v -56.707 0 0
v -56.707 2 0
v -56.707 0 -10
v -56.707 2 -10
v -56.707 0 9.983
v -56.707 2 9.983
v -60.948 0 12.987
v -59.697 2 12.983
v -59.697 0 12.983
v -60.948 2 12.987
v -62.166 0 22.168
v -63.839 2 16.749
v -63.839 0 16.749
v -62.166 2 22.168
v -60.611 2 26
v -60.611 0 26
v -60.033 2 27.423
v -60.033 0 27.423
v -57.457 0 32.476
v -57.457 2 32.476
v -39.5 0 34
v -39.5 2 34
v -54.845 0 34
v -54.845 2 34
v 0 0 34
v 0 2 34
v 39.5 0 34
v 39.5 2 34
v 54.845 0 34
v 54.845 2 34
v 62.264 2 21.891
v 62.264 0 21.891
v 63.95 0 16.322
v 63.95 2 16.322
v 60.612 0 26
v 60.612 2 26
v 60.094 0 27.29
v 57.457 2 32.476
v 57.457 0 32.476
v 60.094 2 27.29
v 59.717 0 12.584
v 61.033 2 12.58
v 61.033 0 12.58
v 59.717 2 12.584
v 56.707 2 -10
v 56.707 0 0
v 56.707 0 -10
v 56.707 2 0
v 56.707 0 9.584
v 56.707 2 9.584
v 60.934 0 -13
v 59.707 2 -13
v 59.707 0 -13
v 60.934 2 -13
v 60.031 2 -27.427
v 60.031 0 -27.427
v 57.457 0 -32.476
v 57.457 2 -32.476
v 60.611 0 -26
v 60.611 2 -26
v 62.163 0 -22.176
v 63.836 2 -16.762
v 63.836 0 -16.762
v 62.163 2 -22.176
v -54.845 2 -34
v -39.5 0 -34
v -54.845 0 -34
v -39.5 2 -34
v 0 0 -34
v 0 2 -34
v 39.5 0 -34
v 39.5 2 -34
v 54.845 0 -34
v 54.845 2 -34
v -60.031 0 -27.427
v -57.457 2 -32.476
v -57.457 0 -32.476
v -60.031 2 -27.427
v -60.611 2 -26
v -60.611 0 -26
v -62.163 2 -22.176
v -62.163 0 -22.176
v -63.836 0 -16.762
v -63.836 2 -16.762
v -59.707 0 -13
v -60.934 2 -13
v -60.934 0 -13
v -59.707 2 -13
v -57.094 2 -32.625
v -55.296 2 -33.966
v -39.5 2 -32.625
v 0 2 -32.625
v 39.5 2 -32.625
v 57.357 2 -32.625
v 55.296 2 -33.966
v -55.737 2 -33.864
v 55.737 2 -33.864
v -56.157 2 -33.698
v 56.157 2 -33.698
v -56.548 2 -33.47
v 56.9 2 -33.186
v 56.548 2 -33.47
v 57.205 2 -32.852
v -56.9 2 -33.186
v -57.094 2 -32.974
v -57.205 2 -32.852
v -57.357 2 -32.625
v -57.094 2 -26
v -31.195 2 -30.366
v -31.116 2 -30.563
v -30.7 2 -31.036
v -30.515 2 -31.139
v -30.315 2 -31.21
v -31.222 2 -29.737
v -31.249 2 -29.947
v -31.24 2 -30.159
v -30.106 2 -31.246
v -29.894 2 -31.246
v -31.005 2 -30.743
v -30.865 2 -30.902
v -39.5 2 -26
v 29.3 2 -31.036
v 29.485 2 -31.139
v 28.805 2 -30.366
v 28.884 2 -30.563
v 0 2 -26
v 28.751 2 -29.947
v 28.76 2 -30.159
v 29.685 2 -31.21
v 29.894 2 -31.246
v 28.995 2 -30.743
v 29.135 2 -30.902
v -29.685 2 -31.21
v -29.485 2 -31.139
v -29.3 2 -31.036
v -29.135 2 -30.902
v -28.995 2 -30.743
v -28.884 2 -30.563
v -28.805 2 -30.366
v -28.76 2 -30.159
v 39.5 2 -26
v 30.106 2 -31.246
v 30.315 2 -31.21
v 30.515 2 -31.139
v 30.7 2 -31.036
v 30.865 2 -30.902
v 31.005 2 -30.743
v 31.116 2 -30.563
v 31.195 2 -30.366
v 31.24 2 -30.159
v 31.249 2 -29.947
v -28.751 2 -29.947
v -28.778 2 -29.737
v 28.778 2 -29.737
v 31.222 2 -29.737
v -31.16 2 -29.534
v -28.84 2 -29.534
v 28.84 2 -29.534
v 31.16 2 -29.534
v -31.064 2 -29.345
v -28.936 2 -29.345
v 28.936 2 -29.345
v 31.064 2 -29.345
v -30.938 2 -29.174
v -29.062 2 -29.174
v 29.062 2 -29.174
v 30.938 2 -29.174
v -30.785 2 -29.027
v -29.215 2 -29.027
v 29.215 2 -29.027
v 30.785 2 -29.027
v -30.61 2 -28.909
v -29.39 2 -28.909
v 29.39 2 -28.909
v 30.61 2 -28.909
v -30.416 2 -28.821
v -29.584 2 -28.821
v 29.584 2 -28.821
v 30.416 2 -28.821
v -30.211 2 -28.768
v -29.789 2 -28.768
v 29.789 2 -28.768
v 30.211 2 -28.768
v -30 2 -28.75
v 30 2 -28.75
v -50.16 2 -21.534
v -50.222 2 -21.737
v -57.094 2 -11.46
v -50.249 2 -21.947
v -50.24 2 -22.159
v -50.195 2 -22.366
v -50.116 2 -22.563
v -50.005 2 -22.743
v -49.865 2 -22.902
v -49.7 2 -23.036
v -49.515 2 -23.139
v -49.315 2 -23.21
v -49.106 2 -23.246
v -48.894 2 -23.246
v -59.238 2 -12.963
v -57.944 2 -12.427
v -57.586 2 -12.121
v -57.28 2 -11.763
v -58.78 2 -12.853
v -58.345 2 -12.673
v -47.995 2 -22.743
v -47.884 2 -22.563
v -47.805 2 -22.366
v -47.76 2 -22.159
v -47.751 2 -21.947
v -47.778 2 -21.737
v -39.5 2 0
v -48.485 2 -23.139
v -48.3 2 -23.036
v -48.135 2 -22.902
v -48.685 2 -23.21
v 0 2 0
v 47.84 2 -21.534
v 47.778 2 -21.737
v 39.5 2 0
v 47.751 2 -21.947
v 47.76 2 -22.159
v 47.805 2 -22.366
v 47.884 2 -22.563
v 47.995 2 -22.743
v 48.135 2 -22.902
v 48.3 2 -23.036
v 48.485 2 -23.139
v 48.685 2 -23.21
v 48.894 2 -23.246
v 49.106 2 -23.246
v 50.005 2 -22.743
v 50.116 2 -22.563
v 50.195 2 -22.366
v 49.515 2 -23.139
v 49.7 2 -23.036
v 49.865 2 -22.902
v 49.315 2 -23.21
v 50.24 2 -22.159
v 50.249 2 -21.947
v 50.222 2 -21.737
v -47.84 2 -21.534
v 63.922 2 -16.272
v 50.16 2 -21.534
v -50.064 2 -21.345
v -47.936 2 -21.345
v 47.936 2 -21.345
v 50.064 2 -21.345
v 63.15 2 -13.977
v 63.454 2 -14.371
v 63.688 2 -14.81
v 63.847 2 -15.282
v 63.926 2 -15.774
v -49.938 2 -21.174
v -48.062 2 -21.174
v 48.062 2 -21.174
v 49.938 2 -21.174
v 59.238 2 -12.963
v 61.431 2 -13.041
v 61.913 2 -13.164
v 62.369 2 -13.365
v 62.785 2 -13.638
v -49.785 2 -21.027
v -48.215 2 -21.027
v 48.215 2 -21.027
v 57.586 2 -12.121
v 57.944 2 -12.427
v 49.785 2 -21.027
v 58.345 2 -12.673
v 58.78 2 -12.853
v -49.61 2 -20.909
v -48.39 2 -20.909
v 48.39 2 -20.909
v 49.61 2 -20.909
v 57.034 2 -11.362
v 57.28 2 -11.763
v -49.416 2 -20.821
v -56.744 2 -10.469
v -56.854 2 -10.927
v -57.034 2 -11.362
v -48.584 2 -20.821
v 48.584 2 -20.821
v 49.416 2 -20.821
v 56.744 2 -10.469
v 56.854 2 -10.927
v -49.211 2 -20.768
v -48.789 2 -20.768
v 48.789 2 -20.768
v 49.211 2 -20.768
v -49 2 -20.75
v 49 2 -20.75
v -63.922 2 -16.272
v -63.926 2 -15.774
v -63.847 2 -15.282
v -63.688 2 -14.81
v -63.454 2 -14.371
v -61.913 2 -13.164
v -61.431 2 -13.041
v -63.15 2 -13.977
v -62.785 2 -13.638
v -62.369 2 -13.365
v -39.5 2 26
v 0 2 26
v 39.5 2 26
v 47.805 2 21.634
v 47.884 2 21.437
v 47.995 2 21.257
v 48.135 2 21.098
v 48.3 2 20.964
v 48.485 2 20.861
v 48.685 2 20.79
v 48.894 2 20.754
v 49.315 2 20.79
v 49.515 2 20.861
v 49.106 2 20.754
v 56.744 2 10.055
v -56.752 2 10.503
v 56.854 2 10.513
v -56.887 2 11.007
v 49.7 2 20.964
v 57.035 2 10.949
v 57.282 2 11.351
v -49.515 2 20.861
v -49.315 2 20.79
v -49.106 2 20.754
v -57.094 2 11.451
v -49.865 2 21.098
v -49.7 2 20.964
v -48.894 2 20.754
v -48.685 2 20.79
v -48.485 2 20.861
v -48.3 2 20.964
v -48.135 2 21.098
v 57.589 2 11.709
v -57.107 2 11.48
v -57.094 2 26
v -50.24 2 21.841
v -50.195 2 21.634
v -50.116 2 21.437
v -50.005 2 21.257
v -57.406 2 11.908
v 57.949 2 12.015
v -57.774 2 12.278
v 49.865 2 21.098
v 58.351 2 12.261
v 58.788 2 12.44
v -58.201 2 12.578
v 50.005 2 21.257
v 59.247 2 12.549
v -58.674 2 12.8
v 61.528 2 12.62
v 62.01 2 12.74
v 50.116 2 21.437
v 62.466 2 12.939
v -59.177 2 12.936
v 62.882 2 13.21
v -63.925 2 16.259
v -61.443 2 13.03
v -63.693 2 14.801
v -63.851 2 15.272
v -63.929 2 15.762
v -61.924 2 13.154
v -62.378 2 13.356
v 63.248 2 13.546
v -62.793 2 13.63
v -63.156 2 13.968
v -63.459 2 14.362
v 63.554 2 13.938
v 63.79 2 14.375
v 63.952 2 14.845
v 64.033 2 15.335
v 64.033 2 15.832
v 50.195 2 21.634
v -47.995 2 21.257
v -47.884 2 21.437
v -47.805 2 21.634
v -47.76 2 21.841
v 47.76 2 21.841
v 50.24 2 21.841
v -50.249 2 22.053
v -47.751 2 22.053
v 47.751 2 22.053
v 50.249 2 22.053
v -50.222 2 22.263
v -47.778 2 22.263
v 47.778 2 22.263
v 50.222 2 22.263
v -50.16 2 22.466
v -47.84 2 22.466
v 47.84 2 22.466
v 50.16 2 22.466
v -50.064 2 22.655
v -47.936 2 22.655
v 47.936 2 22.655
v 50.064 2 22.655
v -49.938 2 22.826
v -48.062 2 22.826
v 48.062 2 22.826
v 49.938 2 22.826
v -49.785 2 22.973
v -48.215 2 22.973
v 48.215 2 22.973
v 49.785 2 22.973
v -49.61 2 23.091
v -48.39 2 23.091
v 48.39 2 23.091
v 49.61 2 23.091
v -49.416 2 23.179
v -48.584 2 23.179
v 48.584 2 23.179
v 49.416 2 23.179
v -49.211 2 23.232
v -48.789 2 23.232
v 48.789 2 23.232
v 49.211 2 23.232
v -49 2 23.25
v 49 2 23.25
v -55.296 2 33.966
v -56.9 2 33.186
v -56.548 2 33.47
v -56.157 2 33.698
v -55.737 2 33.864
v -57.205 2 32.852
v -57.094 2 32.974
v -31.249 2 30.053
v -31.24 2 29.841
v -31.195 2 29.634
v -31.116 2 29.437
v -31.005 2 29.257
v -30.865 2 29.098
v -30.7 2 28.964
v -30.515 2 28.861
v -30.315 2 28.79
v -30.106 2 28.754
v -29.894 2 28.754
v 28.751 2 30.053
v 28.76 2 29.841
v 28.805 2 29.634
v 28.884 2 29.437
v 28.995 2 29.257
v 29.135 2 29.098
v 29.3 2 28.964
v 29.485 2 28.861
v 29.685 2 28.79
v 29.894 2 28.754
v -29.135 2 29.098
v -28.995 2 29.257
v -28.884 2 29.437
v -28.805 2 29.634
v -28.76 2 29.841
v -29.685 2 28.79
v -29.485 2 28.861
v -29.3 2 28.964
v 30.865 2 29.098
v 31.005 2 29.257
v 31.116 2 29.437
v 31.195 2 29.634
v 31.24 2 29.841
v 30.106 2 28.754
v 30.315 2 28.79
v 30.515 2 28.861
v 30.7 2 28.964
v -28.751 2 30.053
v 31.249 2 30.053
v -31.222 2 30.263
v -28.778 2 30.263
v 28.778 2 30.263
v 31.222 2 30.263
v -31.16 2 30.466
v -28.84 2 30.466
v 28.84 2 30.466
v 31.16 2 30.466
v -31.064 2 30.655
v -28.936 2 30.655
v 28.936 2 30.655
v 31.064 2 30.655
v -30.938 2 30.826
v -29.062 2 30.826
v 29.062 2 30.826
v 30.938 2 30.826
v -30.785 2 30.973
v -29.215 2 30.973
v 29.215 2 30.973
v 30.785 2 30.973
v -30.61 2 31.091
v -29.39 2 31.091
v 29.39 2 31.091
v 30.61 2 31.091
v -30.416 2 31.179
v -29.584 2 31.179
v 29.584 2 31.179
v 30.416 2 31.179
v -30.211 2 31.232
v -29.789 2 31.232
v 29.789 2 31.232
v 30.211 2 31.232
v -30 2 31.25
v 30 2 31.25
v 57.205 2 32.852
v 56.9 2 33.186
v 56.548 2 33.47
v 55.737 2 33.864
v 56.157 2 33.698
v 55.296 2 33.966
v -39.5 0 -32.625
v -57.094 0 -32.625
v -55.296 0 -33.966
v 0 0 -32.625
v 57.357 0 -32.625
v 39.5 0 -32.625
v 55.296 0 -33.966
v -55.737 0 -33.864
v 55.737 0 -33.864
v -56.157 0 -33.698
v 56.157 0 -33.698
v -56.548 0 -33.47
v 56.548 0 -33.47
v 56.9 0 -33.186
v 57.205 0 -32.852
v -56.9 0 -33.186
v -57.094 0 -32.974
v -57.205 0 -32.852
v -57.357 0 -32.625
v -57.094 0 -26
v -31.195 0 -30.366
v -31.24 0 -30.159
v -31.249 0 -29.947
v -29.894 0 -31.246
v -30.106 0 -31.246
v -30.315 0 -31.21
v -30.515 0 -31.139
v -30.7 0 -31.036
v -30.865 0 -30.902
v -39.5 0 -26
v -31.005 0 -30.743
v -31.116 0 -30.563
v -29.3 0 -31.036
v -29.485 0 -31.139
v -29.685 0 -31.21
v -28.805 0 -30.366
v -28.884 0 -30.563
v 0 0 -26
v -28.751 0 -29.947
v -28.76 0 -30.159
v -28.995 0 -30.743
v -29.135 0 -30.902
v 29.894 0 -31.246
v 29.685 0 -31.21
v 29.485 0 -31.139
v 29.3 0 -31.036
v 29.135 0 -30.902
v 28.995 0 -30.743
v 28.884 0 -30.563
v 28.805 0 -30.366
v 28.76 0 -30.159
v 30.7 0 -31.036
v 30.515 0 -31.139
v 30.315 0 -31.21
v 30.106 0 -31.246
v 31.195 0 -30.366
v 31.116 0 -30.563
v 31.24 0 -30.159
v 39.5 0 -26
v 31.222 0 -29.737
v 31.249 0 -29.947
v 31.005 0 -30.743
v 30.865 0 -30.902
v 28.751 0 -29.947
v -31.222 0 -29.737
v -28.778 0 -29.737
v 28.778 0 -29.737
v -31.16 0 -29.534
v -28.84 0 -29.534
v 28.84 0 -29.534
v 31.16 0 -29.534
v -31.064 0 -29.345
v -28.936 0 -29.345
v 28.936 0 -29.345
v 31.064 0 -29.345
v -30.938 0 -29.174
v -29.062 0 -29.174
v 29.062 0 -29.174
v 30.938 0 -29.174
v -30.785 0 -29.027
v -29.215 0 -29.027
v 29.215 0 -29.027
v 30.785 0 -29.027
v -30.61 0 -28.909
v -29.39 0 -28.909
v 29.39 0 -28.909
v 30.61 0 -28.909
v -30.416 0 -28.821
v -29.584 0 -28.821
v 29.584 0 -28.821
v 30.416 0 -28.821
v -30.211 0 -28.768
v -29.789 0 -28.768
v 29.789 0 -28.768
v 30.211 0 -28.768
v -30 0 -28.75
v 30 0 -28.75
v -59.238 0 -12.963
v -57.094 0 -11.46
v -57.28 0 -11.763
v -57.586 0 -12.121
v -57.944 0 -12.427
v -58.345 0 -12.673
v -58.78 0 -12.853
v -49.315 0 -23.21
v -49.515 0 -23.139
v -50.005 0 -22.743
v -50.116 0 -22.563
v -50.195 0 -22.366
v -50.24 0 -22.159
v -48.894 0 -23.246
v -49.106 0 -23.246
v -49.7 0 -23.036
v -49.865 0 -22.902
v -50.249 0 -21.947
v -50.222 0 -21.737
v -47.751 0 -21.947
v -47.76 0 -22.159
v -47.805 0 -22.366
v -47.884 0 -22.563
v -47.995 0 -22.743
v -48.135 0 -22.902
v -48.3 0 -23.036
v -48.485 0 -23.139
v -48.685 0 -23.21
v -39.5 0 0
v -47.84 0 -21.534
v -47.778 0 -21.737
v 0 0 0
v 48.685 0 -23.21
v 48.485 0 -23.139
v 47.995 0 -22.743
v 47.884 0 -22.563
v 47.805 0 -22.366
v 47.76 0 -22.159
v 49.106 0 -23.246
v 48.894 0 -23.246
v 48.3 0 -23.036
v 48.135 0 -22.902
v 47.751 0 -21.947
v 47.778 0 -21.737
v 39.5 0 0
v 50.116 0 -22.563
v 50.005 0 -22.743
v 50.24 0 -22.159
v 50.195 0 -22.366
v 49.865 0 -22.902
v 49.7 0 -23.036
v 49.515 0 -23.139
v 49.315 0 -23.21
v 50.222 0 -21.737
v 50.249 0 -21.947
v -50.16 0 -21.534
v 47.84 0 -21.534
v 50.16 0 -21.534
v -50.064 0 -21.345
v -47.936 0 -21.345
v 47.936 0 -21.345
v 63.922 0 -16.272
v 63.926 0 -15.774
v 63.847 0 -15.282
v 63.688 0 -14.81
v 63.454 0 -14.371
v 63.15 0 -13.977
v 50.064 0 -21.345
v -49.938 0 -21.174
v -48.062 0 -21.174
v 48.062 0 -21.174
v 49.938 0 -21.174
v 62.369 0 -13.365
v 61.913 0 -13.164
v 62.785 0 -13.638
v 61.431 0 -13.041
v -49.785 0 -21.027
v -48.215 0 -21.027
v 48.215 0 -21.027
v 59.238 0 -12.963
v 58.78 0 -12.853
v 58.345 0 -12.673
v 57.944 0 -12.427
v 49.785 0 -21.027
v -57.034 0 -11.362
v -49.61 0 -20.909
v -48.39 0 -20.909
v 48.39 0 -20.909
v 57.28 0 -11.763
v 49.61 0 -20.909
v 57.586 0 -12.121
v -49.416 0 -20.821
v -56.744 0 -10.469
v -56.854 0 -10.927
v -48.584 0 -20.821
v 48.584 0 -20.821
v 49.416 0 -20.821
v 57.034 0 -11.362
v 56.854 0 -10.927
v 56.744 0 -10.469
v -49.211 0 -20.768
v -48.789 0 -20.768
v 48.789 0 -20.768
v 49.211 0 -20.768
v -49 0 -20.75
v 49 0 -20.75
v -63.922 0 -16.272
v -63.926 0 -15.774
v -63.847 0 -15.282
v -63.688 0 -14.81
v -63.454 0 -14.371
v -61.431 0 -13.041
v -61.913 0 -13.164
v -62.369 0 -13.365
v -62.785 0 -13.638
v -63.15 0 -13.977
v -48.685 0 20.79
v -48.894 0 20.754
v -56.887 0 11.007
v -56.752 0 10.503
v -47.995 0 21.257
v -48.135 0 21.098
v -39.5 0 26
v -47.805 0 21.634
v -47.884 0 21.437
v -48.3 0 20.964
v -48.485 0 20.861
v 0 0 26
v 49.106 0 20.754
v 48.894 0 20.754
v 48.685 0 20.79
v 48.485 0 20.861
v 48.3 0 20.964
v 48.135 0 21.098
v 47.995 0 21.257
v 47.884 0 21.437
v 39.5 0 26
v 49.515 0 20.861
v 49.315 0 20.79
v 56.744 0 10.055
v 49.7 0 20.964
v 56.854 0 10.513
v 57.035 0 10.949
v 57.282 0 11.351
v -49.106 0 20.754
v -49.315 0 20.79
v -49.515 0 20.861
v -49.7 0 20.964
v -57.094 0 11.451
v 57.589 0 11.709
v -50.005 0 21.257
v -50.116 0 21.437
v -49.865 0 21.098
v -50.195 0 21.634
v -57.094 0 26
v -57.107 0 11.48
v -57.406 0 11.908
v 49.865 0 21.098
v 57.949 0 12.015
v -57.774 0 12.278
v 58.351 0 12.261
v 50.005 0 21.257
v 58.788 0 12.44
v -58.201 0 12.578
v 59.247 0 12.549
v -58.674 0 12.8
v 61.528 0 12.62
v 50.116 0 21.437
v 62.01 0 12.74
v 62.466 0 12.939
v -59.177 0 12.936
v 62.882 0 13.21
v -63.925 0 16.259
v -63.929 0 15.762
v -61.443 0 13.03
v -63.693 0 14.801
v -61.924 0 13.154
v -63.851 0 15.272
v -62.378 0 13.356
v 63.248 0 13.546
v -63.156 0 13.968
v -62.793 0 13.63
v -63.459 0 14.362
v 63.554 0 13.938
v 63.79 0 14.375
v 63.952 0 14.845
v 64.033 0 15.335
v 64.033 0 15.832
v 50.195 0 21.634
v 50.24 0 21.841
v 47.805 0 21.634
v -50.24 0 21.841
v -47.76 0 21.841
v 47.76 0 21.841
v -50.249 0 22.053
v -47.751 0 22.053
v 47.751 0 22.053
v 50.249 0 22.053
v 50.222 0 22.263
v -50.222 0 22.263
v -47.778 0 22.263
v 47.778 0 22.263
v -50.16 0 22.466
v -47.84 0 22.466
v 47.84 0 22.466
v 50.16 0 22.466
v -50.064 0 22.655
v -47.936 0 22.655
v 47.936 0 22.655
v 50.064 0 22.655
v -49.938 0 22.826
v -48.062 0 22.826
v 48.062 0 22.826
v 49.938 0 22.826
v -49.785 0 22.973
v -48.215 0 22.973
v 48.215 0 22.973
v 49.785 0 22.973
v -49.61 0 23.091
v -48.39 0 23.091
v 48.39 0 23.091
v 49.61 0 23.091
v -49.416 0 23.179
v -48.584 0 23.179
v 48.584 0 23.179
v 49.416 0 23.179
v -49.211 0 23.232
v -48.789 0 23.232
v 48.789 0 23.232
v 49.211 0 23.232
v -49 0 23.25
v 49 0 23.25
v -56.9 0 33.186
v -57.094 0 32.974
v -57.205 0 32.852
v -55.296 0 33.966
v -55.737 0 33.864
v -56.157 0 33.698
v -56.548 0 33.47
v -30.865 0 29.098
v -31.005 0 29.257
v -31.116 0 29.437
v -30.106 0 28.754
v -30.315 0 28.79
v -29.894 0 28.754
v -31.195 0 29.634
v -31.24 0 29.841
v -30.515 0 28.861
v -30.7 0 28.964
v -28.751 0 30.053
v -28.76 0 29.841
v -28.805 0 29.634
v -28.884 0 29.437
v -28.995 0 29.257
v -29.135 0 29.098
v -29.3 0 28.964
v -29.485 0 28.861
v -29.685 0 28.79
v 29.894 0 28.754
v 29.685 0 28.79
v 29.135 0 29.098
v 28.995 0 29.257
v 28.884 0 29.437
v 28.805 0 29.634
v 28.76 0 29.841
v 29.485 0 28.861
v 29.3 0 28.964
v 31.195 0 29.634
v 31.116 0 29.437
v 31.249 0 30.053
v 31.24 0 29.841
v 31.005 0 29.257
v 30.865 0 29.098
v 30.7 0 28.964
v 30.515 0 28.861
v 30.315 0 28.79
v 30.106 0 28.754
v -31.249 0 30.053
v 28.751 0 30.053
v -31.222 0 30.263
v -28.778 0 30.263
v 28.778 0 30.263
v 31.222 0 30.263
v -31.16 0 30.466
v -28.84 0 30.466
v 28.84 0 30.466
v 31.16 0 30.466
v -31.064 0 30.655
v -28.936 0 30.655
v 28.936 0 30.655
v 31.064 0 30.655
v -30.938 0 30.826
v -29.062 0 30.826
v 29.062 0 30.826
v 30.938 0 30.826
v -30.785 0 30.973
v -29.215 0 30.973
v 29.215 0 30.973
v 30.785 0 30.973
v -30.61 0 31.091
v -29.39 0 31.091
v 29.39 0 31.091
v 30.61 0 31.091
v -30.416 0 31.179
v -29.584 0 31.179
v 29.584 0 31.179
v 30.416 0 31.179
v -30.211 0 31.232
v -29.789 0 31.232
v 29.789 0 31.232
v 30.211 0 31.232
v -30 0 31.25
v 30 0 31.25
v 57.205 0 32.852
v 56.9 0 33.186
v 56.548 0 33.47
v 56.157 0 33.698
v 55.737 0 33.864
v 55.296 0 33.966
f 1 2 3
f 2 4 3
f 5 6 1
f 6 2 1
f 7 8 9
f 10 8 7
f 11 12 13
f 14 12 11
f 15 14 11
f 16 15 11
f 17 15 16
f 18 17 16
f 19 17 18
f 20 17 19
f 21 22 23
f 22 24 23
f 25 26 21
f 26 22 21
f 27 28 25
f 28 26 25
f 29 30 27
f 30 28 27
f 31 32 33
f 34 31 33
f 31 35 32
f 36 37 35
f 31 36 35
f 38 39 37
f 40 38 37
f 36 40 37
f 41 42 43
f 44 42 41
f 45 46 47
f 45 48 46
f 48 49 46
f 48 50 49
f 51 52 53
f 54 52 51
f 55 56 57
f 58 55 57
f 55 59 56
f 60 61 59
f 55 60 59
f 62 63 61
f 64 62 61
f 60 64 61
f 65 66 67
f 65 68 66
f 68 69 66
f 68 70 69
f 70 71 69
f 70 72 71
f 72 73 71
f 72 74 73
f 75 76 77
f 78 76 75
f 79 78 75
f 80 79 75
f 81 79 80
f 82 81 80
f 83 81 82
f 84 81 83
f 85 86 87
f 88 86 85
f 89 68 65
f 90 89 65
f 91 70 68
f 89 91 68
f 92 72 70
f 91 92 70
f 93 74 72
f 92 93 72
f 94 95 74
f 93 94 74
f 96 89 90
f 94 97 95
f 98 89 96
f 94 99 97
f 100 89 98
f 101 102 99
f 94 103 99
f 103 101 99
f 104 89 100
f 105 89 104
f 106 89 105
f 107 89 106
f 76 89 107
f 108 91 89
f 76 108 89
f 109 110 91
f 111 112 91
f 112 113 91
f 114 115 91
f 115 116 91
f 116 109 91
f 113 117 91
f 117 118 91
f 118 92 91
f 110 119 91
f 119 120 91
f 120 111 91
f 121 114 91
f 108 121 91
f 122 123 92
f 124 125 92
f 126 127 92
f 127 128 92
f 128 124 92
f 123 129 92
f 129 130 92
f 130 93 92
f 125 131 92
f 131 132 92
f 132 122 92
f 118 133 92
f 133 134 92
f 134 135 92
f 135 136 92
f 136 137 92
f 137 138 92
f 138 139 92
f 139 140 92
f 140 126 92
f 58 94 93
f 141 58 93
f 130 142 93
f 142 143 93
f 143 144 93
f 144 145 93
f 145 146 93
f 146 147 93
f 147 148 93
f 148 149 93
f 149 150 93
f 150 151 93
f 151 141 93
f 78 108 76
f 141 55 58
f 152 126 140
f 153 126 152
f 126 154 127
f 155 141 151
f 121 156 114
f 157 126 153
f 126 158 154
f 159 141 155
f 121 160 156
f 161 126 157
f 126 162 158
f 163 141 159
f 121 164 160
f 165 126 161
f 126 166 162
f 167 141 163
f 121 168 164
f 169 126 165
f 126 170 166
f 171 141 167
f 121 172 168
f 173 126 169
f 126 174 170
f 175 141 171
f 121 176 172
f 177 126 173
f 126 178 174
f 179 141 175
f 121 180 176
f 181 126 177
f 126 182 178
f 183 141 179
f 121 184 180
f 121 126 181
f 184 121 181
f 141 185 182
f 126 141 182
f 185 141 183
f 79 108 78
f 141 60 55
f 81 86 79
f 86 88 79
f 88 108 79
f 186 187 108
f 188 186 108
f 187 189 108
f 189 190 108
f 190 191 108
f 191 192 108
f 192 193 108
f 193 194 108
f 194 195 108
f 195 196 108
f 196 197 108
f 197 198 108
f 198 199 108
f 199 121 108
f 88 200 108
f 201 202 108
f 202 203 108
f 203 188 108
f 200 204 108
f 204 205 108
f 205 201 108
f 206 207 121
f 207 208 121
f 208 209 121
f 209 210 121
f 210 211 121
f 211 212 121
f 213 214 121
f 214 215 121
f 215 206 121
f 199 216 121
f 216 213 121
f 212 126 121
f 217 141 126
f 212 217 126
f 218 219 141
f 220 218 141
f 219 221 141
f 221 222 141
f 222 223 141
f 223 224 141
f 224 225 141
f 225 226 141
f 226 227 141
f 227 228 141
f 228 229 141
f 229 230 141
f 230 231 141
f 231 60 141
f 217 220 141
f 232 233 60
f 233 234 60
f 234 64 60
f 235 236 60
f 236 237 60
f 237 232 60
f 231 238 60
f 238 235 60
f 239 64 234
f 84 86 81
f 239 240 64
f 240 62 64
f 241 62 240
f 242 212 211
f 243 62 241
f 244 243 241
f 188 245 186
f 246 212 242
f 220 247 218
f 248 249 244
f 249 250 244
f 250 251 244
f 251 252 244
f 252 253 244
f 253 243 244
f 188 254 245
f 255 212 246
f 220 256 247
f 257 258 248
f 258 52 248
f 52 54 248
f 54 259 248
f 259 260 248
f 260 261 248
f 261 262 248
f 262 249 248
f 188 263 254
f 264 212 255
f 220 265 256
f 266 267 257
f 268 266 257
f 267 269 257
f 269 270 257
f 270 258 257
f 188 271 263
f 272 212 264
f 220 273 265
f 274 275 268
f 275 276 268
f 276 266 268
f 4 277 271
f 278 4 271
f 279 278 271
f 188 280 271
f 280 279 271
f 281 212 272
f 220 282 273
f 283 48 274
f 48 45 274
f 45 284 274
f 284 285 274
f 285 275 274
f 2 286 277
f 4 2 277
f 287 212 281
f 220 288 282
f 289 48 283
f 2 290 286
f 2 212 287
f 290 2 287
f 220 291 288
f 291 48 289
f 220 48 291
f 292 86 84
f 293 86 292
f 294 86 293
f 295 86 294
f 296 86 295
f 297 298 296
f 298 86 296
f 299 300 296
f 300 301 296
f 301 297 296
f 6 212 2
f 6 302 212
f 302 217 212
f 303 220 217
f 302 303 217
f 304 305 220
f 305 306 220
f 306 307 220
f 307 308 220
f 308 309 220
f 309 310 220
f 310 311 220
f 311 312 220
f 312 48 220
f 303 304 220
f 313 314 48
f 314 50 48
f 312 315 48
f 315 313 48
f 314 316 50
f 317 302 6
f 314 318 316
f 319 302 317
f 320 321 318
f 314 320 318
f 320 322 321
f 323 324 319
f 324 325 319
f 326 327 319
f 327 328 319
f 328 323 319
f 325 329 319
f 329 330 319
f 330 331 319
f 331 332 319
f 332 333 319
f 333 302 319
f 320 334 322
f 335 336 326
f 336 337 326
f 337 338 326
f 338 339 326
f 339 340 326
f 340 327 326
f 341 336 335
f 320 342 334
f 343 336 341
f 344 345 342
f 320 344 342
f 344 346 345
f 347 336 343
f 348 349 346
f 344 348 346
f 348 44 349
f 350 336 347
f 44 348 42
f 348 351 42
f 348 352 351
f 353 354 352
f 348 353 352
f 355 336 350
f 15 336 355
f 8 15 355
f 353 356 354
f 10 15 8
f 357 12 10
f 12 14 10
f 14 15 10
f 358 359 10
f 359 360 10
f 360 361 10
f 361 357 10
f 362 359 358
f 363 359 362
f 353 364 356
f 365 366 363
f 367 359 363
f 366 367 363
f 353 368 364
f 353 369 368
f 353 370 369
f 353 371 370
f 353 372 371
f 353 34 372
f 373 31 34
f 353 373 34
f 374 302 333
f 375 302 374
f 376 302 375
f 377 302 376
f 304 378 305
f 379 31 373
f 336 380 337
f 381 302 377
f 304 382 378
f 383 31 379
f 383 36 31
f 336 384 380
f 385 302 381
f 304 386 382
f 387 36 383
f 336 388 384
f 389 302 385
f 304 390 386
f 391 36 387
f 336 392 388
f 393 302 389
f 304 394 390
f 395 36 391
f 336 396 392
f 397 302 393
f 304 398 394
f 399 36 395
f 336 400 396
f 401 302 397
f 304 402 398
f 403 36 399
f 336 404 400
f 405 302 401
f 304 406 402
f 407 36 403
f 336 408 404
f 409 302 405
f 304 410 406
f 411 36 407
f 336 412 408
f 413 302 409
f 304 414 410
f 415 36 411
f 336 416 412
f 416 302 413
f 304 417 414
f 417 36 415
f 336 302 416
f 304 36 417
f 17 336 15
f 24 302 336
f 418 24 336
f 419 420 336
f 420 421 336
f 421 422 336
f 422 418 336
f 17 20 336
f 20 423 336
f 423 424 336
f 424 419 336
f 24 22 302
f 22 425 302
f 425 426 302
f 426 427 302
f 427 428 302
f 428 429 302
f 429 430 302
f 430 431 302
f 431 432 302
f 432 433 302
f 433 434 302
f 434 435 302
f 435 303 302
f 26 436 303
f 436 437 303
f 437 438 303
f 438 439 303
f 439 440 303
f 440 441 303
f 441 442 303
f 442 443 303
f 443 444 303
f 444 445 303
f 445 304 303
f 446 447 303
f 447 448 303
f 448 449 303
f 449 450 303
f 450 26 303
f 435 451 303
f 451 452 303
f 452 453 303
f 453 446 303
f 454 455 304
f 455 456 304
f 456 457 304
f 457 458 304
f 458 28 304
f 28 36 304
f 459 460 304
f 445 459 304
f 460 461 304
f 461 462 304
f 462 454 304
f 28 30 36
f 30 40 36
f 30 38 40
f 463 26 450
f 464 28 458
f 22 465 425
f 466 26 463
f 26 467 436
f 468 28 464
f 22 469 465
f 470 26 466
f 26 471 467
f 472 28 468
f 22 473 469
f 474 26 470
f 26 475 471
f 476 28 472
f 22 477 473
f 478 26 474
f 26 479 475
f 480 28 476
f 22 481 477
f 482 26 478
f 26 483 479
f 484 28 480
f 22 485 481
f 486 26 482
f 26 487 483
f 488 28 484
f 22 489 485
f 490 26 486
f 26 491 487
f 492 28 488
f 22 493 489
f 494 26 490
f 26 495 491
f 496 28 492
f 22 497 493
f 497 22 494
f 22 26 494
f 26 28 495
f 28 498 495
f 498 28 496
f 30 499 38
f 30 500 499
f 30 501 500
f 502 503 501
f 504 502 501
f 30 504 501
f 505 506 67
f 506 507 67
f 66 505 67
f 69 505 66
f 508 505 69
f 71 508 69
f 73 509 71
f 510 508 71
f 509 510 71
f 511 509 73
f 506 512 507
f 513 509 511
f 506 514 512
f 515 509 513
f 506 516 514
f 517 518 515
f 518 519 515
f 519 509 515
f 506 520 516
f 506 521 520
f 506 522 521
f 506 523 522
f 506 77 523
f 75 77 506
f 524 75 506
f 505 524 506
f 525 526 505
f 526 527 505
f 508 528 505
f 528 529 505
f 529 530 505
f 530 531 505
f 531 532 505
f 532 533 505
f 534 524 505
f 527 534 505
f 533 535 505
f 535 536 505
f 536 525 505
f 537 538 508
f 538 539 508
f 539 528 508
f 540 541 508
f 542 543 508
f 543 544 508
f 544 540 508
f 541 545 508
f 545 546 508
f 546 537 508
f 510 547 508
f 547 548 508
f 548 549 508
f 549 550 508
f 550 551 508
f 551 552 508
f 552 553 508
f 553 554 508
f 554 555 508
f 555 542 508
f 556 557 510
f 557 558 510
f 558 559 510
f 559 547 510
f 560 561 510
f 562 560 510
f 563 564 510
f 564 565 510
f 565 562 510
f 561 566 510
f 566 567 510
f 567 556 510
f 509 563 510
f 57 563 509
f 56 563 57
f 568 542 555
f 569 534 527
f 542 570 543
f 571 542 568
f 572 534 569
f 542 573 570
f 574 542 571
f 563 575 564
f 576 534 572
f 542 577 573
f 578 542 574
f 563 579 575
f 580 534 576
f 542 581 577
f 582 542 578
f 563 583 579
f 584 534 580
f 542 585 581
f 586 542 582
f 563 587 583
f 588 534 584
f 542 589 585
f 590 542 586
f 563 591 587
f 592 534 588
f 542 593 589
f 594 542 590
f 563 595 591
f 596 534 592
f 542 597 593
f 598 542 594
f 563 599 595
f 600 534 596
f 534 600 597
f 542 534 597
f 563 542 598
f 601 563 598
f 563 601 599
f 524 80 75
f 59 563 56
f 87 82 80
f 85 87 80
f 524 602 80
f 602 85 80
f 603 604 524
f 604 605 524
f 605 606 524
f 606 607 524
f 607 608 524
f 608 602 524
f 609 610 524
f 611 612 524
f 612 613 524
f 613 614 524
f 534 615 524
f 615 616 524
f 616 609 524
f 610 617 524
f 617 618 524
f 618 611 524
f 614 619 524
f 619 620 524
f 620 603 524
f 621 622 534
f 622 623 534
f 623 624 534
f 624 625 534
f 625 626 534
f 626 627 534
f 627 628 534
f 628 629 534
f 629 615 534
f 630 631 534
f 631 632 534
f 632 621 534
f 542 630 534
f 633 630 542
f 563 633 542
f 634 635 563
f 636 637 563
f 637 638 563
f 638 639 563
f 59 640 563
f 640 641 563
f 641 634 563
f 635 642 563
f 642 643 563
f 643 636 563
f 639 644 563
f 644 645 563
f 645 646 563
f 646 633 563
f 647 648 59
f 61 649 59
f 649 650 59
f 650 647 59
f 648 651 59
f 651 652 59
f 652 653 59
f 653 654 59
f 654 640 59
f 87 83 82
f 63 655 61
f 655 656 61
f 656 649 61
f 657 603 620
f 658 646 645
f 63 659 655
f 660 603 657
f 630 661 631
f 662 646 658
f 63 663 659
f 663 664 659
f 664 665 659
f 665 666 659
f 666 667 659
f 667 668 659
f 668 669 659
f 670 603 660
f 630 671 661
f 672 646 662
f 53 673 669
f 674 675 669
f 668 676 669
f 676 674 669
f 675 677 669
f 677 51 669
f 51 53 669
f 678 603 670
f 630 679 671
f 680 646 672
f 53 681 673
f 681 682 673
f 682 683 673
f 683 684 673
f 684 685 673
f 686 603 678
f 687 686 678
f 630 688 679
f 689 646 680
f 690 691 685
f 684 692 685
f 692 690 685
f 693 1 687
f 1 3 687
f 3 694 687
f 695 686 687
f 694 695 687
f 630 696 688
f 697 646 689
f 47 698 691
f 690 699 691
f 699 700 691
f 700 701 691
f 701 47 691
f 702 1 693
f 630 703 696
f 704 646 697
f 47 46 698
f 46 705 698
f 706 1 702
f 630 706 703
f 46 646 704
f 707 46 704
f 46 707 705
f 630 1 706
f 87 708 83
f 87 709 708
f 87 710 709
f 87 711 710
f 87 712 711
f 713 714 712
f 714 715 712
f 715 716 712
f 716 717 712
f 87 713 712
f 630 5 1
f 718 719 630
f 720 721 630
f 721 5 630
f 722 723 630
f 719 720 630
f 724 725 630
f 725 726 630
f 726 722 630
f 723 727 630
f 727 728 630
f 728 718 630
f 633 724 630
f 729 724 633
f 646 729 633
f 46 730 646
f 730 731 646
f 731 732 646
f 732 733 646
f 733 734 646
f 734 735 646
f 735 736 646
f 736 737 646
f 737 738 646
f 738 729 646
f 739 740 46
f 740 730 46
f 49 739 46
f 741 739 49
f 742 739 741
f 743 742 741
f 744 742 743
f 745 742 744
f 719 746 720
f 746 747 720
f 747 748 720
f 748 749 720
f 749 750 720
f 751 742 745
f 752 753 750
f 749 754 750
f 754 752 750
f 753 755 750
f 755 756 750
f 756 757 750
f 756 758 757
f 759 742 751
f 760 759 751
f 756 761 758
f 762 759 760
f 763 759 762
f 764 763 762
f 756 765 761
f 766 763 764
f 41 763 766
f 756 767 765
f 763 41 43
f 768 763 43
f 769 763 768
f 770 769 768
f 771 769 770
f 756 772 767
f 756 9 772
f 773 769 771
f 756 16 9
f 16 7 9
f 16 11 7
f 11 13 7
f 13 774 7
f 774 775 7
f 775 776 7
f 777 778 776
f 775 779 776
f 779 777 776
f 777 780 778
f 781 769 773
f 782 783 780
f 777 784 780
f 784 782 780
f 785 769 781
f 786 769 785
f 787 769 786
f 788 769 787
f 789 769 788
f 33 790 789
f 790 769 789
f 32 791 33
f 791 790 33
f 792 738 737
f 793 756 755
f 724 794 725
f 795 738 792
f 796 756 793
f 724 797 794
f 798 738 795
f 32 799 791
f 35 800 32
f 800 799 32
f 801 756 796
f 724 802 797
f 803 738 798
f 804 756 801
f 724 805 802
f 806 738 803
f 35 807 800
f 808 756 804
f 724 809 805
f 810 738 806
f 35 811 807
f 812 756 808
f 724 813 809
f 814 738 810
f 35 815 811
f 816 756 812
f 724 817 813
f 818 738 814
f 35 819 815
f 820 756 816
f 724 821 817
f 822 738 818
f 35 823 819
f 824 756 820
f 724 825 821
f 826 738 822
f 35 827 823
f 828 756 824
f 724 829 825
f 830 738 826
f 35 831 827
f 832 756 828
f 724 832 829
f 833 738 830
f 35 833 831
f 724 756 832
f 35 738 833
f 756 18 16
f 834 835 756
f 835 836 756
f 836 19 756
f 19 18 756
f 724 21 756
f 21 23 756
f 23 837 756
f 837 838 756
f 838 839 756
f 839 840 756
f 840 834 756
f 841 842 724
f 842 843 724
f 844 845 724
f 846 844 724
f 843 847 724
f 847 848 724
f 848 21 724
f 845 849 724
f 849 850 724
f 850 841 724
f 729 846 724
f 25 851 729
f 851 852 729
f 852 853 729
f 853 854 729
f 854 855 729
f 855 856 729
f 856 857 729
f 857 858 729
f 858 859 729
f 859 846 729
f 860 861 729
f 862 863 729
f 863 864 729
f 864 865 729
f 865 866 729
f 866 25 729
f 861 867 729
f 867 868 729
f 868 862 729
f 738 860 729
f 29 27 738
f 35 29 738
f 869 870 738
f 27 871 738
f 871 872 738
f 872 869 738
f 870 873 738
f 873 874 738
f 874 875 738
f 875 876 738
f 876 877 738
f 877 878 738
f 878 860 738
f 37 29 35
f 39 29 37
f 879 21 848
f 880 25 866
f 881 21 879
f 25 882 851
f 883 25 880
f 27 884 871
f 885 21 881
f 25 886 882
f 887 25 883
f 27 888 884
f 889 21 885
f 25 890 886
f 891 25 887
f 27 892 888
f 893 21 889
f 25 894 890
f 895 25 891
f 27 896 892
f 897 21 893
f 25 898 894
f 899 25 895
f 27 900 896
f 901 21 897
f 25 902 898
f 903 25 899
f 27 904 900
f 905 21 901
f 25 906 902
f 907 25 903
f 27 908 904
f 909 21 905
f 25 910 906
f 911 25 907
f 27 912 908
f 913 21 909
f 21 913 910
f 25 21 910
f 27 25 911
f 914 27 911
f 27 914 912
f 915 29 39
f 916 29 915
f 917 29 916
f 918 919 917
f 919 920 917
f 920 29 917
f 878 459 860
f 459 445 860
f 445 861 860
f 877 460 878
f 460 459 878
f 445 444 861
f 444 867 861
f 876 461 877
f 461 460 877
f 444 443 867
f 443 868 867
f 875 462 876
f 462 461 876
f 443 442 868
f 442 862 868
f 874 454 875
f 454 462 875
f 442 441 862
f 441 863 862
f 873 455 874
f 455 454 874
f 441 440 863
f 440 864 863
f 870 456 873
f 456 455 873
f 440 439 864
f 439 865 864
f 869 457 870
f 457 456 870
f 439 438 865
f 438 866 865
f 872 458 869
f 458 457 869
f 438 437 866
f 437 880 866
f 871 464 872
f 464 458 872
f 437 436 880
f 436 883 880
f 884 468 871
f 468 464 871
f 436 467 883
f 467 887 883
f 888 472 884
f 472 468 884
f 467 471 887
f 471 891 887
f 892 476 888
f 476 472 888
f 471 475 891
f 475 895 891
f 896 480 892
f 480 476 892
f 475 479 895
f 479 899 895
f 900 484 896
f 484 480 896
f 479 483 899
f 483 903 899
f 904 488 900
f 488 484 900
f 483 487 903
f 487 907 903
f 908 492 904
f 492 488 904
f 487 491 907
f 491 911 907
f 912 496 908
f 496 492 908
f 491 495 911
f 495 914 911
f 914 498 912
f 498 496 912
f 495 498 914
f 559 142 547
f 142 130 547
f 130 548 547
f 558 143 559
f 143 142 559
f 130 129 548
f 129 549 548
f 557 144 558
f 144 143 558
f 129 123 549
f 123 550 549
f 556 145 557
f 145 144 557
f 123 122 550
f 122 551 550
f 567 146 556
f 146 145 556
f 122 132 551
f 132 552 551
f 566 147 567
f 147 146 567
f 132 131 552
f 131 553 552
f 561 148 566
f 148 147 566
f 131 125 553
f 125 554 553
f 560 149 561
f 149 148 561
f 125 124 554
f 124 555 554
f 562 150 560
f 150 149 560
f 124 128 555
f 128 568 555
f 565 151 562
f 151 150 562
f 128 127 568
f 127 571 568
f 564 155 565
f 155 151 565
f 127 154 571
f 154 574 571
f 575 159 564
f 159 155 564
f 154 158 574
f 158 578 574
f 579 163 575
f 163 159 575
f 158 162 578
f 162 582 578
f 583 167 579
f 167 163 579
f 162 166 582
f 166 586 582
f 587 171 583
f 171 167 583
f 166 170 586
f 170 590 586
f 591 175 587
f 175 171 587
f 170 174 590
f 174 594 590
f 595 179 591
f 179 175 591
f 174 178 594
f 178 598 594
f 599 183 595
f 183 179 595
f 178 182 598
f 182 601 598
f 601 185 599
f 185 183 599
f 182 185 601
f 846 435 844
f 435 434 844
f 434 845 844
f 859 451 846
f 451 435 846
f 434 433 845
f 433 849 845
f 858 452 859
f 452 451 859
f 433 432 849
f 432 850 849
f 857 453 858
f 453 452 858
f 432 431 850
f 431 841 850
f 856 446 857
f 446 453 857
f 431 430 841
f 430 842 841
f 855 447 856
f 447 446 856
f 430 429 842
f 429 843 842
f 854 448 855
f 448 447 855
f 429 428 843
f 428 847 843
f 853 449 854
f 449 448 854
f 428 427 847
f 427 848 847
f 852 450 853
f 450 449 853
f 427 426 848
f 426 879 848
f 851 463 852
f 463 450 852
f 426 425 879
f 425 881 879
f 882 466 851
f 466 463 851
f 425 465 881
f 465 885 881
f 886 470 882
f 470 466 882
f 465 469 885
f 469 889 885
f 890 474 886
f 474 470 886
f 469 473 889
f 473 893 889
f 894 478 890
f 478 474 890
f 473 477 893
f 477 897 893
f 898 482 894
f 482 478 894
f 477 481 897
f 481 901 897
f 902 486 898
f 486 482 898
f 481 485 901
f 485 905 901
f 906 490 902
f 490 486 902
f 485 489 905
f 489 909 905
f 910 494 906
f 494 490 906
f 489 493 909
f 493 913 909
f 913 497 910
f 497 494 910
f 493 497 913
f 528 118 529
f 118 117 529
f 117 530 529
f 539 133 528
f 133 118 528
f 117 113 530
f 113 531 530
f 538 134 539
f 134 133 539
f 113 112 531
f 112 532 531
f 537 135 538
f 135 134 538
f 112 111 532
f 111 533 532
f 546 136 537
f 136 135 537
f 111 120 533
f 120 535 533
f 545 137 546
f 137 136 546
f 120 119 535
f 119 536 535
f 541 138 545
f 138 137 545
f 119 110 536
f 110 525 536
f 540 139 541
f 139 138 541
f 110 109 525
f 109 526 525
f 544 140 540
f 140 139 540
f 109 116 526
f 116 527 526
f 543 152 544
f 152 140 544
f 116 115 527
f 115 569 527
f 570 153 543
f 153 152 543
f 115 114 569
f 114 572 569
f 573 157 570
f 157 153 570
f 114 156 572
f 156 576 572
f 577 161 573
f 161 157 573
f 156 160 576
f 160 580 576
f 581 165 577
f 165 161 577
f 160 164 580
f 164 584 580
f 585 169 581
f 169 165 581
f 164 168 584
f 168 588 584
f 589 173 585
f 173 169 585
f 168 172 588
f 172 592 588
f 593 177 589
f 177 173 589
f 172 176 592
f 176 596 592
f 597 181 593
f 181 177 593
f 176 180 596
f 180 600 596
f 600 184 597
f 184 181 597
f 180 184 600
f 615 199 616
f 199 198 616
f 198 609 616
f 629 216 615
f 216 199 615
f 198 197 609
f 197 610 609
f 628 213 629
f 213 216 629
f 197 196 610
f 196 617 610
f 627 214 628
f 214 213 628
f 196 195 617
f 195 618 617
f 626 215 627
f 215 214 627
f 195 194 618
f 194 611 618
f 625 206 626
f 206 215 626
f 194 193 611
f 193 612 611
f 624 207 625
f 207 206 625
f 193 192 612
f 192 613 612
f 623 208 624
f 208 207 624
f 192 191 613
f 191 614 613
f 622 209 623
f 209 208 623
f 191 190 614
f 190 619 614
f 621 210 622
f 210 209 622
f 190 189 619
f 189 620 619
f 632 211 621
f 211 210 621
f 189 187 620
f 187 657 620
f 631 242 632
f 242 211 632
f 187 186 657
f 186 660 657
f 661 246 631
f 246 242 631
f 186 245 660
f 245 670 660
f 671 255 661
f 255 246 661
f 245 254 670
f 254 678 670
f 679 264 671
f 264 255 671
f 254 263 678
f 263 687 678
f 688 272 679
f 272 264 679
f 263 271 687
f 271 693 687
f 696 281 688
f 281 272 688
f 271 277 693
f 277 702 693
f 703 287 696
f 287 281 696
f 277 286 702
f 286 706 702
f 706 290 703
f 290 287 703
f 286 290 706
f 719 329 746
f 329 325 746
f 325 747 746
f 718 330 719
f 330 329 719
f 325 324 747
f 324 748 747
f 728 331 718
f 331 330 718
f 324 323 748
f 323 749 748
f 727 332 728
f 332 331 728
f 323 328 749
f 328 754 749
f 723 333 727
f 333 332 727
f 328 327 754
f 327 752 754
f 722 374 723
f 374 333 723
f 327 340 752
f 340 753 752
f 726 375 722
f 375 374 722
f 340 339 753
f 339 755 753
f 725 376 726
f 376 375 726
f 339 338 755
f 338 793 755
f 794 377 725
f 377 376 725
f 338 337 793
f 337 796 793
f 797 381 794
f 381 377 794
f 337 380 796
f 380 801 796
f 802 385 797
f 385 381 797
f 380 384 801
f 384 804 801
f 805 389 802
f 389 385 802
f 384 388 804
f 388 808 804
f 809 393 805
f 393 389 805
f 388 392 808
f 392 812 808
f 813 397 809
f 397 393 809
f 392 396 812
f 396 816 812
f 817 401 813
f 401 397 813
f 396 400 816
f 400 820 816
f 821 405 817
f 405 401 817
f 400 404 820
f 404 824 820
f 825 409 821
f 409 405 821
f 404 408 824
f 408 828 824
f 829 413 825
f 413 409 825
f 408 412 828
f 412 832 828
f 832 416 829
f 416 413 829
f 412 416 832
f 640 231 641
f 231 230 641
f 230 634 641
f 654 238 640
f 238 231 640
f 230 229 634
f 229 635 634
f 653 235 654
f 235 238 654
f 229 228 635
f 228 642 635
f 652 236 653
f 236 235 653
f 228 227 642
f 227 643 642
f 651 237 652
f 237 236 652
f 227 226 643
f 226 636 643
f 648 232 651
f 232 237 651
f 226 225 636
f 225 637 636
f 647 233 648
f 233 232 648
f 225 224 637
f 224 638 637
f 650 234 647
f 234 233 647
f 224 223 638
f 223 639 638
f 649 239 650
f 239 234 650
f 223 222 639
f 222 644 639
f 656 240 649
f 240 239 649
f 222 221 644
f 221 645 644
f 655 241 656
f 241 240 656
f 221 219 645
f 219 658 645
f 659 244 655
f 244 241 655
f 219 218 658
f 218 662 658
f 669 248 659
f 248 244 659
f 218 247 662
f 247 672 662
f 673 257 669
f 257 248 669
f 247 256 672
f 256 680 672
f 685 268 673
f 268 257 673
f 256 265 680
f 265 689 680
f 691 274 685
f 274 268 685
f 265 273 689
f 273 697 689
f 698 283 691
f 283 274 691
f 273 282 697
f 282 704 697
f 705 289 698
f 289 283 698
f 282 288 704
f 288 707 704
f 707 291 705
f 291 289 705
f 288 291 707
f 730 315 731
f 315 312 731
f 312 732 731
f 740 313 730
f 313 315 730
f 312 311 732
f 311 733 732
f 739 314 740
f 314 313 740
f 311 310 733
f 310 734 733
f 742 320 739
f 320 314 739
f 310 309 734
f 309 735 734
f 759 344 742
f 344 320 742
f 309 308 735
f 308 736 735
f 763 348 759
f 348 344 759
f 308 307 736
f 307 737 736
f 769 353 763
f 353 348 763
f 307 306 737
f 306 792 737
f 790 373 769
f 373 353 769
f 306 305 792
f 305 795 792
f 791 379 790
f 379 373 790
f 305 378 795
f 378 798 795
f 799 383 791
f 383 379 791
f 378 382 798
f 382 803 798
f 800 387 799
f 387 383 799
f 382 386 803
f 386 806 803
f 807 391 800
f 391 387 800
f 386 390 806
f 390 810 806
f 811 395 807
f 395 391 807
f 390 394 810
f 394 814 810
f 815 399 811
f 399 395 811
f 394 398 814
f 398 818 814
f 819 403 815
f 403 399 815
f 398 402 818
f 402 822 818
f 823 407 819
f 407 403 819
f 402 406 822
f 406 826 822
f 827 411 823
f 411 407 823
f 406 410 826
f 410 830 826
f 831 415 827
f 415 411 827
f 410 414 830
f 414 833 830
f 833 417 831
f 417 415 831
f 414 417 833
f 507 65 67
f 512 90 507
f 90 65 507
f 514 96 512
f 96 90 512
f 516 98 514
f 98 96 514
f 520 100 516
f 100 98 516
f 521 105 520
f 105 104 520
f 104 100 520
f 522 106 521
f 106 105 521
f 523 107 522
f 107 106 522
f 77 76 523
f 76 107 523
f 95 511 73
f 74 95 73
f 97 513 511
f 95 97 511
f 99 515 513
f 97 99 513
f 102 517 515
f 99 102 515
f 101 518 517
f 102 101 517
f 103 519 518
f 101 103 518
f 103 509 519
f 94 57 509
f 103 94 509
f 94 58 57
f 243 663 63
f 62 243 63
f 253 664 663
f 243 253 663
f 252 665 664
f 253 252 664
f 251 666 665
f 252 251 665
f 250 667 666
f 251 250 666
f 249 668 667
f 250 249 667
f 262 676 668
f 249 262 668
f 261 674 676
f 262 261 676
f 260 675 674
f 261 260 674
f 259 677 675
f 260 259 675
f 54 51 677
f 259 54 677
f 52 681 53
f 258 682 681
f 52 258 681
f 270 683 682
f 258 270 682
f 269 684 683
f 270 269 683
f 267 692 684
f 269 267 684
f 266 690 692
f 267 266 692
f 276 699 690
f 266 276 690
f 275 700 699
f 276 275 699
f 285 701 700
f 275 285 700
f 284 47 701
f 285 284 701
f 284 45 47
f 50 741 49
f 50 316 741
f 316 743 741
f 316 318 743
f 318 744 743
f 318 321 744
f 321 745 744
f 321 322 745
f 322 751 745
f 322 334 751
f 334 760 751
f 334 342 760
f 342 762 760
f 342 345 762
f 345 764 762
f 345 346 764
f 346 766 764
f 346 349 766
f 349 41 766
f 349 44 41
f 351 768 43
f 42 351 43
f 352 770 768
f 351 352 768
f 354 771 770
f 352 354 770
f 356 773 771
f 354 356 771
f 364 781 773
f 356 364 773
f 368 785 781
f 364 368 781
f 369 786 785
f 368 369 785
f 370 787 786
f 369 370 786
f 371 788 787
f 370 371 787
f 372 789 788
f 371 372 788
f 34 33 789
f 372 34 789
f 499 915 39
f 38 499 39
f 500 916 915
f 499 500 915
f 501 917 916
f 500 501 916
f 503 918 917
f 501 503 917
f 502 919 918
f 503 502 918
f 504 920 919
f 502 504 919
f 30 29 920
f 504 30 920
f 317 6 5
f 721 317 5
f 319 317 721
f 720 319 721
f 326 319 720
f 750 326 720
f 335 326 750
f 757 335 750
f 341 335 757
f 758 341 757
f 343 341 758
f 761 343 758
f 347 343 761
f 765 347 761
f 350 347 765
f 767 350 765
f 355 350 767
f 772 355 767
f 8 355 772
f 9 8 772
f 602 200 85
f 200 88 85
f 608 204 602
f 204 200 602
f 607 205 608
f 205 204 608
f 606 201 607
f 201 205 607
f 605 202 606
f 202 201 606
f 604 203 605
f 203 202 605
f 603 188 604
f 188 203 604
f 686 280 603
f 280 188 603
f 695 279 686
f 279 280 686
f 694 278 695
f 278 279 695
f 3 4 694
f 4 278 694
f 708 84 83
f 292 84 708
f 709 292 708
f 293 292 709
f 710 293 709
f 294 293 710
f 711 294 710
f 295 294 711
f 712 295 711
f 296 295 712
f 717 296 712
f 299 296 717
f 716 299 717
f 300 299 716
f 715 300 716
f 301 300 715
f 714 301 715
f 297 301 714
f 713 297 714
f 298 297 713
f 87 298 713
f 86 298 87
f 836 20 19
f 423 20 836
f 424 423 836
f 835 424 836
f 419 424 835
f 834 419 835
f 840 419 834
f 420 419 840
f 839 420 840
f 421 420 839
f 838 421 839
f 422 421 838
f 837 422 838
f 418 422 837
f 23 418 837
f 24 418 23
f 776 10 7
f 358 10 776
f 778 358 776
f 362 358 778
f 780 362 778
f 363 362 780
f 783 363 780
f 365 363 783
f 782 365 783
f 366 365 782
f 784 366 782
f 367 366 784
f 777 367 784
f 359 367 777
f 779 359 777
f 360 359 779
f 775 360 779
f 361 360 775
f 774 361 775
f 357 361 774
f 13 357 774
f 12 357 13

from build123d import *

# Parameters (mm, degrees)
EXTRUDE_2_DEPTH             = 2
M3X0_5_1_D                  = 2.5
M3X0_5_1_DEPTH              = 4
M3X0_5_1_TIP                = 0.751075774
M3X0_5_1_ON_FACE_2_D        = 2.5
M3X0_5_1_ON_FACE_2_DEPTH    = 4
M3X0_5_1_ON_FACE_2_TIP      = 0.751075774
PATTERN_LINEAR_1_COUNT      = 2
PATTERN_LINEAR_1_PITCH      = 98
PATTERN_LINEAR_1_COUNT_DIR2 = 2
PATTERN_LINEAR_1_PITCH_DIR2 = 44
FILLET_4_R                  = 3


with BuildPart() as part:
    # 草圖10 → 填料-伸長2 (new body)
    with BuildSketch(Plane(origin=(0, 0, 0), x_dir=(1, 0, 0), z_dir=(0, 1, 0))):
        with BuildLine():
            Line((56.568542495, 34), (-56.568542495, 34))
            ThreePointArc((-56.568542495, 34), (-61.540159626, 23.849711805), (-64.707032075, 13))
            Line((-64.707032075, 13), (-56.707032075, 13))
            Line((-56.707032075, 13), (-56.707032075, -12.973279994))
            Line((-56.707032075, -12.973279994), (-64.707032075, -13))
            ThreePointArc((-64.707032075, -13), (-61.540159626, -23.849711805), (-56.568542495, -34))
            Line((-56.568542495, -34), (56.568542495, -34))
            ThreePointArc((56.568542495, -34), (61.619473981, -23.644035746), (64.792427449, -12.567471713))
            Line((64.792427449, -12.567471713), (56.707032075, -12.594476939))
            Line((56.707032075, -12.594476939), (56.707032075, 13))
            Line((56.707032075, 13), (64.707032075, 13))
            ThreePointArc((64.707032075, 13), (61.540159626, 23.849711805), (56.568542495, 34))
        make_face()
    extrude(amount=EXTRUDE_2_DEPTH)

    # M3x0.5  螺絲攻的螺孔鑽1
    with Locations(Plane(origin=(30, 2, 30), x_dir=(0, 0, 1), z_dir=(0, 1, 0))):
        with Locations((0, 0), (-60, -60), (0, -60), (-60, 0)):
            Hole(M3X0_5_1_D / 2, depth=M3X0_5_1_DEPTH)
            with Locations((0, 0, -(M3X0_5_1_DEPTH + M3X0_5_1_TIP / 2))):  # 118° drill point
                Cone(0, M3X0_5_1_D / 2, M3X0_5_1_TIP, mode=Mode.SUBTRACT)

    # M3x0.5  螺絲攻的螺孔鑽1 on face 2
    with Locations(Plane(origin=(-30, 0, -30), x_dir=(0, 0, -1), z_dir=(0, -1, 0))):
        with Locations((0, 0)):
            Hole(M3X0_5_1_ON_FACE_2_D / 2, depth=M3X0_5_1_ON_FACE_2_DEPTH)
            with Locations((0, 0, -(M3X0_5_1_ON_FACE_2_DEPTH + M3X0_5_1_ON_FACE_2_TIP / 2))):  # 118° drill point
                Cone(0, M3X0_5_1_ON_FACE_2_D / 2, M3X0_5_1_ON_FACE_2_TIP, mode=Mode.SUBTRACT)

    # 草圖14 → M3x0.5  螺絲攻的螺孔鑽2 (revolve, cut)
    with BuildSketch(Plane(origin=(-49, 2, -22), x_dir=(0, 0, 1), z_dir=(1, 0, 0))):
        Polygon((0, 0), (0, 4.751075774), (1.25, 4), (1.25, 0), align=None)
    m3x0_5_2 = revolve(axis=Axis((-49, 8.35, -22), (0, -1, 0)), mode=Mode.SUBTRACT)

    # 直線複製排列1: M3x0.5 _2 2 × 2
    with Locations(*[(i * PATTERN_LINEAR_1_PITCH, 0, j * PATTERN_LINEAR_1_PITCH_DIR2) for i in range(PATTERN_LINEAR_1_COUNT) for j in range(PATTERN_LINEAR_1_COUNT_DIR2) if (i, j) != (0, 0)]):
        add(m3x0_5_2, mode=Mode.SUBTRACT)

    # 圓角4
    fillet_4_edges = [part.edges().sort_by_distance(p)[0] for p in [
        (-56.707032075, 1, -13),
        (-64.707032075, 1, -13),
        (-56.568542495, 1, -34),
        (56.568542495, 1, -34),
        (64.707032075, 1, -13),
        (56.707032075, 1, -13),
        (56.707032075, 1, 12.594476939),
        (64.792427449, 1, 12.567471713),
        (56.568542495, 1, 34),
        (-56.568542495, 1, 34),
        (-64.707032075, 1, 13),
        (-56.707032075, 1, 12.973279994),
    ]]
    fillet(fillet_4_edges, radius=FILLET_4_R)


solid = part.part
